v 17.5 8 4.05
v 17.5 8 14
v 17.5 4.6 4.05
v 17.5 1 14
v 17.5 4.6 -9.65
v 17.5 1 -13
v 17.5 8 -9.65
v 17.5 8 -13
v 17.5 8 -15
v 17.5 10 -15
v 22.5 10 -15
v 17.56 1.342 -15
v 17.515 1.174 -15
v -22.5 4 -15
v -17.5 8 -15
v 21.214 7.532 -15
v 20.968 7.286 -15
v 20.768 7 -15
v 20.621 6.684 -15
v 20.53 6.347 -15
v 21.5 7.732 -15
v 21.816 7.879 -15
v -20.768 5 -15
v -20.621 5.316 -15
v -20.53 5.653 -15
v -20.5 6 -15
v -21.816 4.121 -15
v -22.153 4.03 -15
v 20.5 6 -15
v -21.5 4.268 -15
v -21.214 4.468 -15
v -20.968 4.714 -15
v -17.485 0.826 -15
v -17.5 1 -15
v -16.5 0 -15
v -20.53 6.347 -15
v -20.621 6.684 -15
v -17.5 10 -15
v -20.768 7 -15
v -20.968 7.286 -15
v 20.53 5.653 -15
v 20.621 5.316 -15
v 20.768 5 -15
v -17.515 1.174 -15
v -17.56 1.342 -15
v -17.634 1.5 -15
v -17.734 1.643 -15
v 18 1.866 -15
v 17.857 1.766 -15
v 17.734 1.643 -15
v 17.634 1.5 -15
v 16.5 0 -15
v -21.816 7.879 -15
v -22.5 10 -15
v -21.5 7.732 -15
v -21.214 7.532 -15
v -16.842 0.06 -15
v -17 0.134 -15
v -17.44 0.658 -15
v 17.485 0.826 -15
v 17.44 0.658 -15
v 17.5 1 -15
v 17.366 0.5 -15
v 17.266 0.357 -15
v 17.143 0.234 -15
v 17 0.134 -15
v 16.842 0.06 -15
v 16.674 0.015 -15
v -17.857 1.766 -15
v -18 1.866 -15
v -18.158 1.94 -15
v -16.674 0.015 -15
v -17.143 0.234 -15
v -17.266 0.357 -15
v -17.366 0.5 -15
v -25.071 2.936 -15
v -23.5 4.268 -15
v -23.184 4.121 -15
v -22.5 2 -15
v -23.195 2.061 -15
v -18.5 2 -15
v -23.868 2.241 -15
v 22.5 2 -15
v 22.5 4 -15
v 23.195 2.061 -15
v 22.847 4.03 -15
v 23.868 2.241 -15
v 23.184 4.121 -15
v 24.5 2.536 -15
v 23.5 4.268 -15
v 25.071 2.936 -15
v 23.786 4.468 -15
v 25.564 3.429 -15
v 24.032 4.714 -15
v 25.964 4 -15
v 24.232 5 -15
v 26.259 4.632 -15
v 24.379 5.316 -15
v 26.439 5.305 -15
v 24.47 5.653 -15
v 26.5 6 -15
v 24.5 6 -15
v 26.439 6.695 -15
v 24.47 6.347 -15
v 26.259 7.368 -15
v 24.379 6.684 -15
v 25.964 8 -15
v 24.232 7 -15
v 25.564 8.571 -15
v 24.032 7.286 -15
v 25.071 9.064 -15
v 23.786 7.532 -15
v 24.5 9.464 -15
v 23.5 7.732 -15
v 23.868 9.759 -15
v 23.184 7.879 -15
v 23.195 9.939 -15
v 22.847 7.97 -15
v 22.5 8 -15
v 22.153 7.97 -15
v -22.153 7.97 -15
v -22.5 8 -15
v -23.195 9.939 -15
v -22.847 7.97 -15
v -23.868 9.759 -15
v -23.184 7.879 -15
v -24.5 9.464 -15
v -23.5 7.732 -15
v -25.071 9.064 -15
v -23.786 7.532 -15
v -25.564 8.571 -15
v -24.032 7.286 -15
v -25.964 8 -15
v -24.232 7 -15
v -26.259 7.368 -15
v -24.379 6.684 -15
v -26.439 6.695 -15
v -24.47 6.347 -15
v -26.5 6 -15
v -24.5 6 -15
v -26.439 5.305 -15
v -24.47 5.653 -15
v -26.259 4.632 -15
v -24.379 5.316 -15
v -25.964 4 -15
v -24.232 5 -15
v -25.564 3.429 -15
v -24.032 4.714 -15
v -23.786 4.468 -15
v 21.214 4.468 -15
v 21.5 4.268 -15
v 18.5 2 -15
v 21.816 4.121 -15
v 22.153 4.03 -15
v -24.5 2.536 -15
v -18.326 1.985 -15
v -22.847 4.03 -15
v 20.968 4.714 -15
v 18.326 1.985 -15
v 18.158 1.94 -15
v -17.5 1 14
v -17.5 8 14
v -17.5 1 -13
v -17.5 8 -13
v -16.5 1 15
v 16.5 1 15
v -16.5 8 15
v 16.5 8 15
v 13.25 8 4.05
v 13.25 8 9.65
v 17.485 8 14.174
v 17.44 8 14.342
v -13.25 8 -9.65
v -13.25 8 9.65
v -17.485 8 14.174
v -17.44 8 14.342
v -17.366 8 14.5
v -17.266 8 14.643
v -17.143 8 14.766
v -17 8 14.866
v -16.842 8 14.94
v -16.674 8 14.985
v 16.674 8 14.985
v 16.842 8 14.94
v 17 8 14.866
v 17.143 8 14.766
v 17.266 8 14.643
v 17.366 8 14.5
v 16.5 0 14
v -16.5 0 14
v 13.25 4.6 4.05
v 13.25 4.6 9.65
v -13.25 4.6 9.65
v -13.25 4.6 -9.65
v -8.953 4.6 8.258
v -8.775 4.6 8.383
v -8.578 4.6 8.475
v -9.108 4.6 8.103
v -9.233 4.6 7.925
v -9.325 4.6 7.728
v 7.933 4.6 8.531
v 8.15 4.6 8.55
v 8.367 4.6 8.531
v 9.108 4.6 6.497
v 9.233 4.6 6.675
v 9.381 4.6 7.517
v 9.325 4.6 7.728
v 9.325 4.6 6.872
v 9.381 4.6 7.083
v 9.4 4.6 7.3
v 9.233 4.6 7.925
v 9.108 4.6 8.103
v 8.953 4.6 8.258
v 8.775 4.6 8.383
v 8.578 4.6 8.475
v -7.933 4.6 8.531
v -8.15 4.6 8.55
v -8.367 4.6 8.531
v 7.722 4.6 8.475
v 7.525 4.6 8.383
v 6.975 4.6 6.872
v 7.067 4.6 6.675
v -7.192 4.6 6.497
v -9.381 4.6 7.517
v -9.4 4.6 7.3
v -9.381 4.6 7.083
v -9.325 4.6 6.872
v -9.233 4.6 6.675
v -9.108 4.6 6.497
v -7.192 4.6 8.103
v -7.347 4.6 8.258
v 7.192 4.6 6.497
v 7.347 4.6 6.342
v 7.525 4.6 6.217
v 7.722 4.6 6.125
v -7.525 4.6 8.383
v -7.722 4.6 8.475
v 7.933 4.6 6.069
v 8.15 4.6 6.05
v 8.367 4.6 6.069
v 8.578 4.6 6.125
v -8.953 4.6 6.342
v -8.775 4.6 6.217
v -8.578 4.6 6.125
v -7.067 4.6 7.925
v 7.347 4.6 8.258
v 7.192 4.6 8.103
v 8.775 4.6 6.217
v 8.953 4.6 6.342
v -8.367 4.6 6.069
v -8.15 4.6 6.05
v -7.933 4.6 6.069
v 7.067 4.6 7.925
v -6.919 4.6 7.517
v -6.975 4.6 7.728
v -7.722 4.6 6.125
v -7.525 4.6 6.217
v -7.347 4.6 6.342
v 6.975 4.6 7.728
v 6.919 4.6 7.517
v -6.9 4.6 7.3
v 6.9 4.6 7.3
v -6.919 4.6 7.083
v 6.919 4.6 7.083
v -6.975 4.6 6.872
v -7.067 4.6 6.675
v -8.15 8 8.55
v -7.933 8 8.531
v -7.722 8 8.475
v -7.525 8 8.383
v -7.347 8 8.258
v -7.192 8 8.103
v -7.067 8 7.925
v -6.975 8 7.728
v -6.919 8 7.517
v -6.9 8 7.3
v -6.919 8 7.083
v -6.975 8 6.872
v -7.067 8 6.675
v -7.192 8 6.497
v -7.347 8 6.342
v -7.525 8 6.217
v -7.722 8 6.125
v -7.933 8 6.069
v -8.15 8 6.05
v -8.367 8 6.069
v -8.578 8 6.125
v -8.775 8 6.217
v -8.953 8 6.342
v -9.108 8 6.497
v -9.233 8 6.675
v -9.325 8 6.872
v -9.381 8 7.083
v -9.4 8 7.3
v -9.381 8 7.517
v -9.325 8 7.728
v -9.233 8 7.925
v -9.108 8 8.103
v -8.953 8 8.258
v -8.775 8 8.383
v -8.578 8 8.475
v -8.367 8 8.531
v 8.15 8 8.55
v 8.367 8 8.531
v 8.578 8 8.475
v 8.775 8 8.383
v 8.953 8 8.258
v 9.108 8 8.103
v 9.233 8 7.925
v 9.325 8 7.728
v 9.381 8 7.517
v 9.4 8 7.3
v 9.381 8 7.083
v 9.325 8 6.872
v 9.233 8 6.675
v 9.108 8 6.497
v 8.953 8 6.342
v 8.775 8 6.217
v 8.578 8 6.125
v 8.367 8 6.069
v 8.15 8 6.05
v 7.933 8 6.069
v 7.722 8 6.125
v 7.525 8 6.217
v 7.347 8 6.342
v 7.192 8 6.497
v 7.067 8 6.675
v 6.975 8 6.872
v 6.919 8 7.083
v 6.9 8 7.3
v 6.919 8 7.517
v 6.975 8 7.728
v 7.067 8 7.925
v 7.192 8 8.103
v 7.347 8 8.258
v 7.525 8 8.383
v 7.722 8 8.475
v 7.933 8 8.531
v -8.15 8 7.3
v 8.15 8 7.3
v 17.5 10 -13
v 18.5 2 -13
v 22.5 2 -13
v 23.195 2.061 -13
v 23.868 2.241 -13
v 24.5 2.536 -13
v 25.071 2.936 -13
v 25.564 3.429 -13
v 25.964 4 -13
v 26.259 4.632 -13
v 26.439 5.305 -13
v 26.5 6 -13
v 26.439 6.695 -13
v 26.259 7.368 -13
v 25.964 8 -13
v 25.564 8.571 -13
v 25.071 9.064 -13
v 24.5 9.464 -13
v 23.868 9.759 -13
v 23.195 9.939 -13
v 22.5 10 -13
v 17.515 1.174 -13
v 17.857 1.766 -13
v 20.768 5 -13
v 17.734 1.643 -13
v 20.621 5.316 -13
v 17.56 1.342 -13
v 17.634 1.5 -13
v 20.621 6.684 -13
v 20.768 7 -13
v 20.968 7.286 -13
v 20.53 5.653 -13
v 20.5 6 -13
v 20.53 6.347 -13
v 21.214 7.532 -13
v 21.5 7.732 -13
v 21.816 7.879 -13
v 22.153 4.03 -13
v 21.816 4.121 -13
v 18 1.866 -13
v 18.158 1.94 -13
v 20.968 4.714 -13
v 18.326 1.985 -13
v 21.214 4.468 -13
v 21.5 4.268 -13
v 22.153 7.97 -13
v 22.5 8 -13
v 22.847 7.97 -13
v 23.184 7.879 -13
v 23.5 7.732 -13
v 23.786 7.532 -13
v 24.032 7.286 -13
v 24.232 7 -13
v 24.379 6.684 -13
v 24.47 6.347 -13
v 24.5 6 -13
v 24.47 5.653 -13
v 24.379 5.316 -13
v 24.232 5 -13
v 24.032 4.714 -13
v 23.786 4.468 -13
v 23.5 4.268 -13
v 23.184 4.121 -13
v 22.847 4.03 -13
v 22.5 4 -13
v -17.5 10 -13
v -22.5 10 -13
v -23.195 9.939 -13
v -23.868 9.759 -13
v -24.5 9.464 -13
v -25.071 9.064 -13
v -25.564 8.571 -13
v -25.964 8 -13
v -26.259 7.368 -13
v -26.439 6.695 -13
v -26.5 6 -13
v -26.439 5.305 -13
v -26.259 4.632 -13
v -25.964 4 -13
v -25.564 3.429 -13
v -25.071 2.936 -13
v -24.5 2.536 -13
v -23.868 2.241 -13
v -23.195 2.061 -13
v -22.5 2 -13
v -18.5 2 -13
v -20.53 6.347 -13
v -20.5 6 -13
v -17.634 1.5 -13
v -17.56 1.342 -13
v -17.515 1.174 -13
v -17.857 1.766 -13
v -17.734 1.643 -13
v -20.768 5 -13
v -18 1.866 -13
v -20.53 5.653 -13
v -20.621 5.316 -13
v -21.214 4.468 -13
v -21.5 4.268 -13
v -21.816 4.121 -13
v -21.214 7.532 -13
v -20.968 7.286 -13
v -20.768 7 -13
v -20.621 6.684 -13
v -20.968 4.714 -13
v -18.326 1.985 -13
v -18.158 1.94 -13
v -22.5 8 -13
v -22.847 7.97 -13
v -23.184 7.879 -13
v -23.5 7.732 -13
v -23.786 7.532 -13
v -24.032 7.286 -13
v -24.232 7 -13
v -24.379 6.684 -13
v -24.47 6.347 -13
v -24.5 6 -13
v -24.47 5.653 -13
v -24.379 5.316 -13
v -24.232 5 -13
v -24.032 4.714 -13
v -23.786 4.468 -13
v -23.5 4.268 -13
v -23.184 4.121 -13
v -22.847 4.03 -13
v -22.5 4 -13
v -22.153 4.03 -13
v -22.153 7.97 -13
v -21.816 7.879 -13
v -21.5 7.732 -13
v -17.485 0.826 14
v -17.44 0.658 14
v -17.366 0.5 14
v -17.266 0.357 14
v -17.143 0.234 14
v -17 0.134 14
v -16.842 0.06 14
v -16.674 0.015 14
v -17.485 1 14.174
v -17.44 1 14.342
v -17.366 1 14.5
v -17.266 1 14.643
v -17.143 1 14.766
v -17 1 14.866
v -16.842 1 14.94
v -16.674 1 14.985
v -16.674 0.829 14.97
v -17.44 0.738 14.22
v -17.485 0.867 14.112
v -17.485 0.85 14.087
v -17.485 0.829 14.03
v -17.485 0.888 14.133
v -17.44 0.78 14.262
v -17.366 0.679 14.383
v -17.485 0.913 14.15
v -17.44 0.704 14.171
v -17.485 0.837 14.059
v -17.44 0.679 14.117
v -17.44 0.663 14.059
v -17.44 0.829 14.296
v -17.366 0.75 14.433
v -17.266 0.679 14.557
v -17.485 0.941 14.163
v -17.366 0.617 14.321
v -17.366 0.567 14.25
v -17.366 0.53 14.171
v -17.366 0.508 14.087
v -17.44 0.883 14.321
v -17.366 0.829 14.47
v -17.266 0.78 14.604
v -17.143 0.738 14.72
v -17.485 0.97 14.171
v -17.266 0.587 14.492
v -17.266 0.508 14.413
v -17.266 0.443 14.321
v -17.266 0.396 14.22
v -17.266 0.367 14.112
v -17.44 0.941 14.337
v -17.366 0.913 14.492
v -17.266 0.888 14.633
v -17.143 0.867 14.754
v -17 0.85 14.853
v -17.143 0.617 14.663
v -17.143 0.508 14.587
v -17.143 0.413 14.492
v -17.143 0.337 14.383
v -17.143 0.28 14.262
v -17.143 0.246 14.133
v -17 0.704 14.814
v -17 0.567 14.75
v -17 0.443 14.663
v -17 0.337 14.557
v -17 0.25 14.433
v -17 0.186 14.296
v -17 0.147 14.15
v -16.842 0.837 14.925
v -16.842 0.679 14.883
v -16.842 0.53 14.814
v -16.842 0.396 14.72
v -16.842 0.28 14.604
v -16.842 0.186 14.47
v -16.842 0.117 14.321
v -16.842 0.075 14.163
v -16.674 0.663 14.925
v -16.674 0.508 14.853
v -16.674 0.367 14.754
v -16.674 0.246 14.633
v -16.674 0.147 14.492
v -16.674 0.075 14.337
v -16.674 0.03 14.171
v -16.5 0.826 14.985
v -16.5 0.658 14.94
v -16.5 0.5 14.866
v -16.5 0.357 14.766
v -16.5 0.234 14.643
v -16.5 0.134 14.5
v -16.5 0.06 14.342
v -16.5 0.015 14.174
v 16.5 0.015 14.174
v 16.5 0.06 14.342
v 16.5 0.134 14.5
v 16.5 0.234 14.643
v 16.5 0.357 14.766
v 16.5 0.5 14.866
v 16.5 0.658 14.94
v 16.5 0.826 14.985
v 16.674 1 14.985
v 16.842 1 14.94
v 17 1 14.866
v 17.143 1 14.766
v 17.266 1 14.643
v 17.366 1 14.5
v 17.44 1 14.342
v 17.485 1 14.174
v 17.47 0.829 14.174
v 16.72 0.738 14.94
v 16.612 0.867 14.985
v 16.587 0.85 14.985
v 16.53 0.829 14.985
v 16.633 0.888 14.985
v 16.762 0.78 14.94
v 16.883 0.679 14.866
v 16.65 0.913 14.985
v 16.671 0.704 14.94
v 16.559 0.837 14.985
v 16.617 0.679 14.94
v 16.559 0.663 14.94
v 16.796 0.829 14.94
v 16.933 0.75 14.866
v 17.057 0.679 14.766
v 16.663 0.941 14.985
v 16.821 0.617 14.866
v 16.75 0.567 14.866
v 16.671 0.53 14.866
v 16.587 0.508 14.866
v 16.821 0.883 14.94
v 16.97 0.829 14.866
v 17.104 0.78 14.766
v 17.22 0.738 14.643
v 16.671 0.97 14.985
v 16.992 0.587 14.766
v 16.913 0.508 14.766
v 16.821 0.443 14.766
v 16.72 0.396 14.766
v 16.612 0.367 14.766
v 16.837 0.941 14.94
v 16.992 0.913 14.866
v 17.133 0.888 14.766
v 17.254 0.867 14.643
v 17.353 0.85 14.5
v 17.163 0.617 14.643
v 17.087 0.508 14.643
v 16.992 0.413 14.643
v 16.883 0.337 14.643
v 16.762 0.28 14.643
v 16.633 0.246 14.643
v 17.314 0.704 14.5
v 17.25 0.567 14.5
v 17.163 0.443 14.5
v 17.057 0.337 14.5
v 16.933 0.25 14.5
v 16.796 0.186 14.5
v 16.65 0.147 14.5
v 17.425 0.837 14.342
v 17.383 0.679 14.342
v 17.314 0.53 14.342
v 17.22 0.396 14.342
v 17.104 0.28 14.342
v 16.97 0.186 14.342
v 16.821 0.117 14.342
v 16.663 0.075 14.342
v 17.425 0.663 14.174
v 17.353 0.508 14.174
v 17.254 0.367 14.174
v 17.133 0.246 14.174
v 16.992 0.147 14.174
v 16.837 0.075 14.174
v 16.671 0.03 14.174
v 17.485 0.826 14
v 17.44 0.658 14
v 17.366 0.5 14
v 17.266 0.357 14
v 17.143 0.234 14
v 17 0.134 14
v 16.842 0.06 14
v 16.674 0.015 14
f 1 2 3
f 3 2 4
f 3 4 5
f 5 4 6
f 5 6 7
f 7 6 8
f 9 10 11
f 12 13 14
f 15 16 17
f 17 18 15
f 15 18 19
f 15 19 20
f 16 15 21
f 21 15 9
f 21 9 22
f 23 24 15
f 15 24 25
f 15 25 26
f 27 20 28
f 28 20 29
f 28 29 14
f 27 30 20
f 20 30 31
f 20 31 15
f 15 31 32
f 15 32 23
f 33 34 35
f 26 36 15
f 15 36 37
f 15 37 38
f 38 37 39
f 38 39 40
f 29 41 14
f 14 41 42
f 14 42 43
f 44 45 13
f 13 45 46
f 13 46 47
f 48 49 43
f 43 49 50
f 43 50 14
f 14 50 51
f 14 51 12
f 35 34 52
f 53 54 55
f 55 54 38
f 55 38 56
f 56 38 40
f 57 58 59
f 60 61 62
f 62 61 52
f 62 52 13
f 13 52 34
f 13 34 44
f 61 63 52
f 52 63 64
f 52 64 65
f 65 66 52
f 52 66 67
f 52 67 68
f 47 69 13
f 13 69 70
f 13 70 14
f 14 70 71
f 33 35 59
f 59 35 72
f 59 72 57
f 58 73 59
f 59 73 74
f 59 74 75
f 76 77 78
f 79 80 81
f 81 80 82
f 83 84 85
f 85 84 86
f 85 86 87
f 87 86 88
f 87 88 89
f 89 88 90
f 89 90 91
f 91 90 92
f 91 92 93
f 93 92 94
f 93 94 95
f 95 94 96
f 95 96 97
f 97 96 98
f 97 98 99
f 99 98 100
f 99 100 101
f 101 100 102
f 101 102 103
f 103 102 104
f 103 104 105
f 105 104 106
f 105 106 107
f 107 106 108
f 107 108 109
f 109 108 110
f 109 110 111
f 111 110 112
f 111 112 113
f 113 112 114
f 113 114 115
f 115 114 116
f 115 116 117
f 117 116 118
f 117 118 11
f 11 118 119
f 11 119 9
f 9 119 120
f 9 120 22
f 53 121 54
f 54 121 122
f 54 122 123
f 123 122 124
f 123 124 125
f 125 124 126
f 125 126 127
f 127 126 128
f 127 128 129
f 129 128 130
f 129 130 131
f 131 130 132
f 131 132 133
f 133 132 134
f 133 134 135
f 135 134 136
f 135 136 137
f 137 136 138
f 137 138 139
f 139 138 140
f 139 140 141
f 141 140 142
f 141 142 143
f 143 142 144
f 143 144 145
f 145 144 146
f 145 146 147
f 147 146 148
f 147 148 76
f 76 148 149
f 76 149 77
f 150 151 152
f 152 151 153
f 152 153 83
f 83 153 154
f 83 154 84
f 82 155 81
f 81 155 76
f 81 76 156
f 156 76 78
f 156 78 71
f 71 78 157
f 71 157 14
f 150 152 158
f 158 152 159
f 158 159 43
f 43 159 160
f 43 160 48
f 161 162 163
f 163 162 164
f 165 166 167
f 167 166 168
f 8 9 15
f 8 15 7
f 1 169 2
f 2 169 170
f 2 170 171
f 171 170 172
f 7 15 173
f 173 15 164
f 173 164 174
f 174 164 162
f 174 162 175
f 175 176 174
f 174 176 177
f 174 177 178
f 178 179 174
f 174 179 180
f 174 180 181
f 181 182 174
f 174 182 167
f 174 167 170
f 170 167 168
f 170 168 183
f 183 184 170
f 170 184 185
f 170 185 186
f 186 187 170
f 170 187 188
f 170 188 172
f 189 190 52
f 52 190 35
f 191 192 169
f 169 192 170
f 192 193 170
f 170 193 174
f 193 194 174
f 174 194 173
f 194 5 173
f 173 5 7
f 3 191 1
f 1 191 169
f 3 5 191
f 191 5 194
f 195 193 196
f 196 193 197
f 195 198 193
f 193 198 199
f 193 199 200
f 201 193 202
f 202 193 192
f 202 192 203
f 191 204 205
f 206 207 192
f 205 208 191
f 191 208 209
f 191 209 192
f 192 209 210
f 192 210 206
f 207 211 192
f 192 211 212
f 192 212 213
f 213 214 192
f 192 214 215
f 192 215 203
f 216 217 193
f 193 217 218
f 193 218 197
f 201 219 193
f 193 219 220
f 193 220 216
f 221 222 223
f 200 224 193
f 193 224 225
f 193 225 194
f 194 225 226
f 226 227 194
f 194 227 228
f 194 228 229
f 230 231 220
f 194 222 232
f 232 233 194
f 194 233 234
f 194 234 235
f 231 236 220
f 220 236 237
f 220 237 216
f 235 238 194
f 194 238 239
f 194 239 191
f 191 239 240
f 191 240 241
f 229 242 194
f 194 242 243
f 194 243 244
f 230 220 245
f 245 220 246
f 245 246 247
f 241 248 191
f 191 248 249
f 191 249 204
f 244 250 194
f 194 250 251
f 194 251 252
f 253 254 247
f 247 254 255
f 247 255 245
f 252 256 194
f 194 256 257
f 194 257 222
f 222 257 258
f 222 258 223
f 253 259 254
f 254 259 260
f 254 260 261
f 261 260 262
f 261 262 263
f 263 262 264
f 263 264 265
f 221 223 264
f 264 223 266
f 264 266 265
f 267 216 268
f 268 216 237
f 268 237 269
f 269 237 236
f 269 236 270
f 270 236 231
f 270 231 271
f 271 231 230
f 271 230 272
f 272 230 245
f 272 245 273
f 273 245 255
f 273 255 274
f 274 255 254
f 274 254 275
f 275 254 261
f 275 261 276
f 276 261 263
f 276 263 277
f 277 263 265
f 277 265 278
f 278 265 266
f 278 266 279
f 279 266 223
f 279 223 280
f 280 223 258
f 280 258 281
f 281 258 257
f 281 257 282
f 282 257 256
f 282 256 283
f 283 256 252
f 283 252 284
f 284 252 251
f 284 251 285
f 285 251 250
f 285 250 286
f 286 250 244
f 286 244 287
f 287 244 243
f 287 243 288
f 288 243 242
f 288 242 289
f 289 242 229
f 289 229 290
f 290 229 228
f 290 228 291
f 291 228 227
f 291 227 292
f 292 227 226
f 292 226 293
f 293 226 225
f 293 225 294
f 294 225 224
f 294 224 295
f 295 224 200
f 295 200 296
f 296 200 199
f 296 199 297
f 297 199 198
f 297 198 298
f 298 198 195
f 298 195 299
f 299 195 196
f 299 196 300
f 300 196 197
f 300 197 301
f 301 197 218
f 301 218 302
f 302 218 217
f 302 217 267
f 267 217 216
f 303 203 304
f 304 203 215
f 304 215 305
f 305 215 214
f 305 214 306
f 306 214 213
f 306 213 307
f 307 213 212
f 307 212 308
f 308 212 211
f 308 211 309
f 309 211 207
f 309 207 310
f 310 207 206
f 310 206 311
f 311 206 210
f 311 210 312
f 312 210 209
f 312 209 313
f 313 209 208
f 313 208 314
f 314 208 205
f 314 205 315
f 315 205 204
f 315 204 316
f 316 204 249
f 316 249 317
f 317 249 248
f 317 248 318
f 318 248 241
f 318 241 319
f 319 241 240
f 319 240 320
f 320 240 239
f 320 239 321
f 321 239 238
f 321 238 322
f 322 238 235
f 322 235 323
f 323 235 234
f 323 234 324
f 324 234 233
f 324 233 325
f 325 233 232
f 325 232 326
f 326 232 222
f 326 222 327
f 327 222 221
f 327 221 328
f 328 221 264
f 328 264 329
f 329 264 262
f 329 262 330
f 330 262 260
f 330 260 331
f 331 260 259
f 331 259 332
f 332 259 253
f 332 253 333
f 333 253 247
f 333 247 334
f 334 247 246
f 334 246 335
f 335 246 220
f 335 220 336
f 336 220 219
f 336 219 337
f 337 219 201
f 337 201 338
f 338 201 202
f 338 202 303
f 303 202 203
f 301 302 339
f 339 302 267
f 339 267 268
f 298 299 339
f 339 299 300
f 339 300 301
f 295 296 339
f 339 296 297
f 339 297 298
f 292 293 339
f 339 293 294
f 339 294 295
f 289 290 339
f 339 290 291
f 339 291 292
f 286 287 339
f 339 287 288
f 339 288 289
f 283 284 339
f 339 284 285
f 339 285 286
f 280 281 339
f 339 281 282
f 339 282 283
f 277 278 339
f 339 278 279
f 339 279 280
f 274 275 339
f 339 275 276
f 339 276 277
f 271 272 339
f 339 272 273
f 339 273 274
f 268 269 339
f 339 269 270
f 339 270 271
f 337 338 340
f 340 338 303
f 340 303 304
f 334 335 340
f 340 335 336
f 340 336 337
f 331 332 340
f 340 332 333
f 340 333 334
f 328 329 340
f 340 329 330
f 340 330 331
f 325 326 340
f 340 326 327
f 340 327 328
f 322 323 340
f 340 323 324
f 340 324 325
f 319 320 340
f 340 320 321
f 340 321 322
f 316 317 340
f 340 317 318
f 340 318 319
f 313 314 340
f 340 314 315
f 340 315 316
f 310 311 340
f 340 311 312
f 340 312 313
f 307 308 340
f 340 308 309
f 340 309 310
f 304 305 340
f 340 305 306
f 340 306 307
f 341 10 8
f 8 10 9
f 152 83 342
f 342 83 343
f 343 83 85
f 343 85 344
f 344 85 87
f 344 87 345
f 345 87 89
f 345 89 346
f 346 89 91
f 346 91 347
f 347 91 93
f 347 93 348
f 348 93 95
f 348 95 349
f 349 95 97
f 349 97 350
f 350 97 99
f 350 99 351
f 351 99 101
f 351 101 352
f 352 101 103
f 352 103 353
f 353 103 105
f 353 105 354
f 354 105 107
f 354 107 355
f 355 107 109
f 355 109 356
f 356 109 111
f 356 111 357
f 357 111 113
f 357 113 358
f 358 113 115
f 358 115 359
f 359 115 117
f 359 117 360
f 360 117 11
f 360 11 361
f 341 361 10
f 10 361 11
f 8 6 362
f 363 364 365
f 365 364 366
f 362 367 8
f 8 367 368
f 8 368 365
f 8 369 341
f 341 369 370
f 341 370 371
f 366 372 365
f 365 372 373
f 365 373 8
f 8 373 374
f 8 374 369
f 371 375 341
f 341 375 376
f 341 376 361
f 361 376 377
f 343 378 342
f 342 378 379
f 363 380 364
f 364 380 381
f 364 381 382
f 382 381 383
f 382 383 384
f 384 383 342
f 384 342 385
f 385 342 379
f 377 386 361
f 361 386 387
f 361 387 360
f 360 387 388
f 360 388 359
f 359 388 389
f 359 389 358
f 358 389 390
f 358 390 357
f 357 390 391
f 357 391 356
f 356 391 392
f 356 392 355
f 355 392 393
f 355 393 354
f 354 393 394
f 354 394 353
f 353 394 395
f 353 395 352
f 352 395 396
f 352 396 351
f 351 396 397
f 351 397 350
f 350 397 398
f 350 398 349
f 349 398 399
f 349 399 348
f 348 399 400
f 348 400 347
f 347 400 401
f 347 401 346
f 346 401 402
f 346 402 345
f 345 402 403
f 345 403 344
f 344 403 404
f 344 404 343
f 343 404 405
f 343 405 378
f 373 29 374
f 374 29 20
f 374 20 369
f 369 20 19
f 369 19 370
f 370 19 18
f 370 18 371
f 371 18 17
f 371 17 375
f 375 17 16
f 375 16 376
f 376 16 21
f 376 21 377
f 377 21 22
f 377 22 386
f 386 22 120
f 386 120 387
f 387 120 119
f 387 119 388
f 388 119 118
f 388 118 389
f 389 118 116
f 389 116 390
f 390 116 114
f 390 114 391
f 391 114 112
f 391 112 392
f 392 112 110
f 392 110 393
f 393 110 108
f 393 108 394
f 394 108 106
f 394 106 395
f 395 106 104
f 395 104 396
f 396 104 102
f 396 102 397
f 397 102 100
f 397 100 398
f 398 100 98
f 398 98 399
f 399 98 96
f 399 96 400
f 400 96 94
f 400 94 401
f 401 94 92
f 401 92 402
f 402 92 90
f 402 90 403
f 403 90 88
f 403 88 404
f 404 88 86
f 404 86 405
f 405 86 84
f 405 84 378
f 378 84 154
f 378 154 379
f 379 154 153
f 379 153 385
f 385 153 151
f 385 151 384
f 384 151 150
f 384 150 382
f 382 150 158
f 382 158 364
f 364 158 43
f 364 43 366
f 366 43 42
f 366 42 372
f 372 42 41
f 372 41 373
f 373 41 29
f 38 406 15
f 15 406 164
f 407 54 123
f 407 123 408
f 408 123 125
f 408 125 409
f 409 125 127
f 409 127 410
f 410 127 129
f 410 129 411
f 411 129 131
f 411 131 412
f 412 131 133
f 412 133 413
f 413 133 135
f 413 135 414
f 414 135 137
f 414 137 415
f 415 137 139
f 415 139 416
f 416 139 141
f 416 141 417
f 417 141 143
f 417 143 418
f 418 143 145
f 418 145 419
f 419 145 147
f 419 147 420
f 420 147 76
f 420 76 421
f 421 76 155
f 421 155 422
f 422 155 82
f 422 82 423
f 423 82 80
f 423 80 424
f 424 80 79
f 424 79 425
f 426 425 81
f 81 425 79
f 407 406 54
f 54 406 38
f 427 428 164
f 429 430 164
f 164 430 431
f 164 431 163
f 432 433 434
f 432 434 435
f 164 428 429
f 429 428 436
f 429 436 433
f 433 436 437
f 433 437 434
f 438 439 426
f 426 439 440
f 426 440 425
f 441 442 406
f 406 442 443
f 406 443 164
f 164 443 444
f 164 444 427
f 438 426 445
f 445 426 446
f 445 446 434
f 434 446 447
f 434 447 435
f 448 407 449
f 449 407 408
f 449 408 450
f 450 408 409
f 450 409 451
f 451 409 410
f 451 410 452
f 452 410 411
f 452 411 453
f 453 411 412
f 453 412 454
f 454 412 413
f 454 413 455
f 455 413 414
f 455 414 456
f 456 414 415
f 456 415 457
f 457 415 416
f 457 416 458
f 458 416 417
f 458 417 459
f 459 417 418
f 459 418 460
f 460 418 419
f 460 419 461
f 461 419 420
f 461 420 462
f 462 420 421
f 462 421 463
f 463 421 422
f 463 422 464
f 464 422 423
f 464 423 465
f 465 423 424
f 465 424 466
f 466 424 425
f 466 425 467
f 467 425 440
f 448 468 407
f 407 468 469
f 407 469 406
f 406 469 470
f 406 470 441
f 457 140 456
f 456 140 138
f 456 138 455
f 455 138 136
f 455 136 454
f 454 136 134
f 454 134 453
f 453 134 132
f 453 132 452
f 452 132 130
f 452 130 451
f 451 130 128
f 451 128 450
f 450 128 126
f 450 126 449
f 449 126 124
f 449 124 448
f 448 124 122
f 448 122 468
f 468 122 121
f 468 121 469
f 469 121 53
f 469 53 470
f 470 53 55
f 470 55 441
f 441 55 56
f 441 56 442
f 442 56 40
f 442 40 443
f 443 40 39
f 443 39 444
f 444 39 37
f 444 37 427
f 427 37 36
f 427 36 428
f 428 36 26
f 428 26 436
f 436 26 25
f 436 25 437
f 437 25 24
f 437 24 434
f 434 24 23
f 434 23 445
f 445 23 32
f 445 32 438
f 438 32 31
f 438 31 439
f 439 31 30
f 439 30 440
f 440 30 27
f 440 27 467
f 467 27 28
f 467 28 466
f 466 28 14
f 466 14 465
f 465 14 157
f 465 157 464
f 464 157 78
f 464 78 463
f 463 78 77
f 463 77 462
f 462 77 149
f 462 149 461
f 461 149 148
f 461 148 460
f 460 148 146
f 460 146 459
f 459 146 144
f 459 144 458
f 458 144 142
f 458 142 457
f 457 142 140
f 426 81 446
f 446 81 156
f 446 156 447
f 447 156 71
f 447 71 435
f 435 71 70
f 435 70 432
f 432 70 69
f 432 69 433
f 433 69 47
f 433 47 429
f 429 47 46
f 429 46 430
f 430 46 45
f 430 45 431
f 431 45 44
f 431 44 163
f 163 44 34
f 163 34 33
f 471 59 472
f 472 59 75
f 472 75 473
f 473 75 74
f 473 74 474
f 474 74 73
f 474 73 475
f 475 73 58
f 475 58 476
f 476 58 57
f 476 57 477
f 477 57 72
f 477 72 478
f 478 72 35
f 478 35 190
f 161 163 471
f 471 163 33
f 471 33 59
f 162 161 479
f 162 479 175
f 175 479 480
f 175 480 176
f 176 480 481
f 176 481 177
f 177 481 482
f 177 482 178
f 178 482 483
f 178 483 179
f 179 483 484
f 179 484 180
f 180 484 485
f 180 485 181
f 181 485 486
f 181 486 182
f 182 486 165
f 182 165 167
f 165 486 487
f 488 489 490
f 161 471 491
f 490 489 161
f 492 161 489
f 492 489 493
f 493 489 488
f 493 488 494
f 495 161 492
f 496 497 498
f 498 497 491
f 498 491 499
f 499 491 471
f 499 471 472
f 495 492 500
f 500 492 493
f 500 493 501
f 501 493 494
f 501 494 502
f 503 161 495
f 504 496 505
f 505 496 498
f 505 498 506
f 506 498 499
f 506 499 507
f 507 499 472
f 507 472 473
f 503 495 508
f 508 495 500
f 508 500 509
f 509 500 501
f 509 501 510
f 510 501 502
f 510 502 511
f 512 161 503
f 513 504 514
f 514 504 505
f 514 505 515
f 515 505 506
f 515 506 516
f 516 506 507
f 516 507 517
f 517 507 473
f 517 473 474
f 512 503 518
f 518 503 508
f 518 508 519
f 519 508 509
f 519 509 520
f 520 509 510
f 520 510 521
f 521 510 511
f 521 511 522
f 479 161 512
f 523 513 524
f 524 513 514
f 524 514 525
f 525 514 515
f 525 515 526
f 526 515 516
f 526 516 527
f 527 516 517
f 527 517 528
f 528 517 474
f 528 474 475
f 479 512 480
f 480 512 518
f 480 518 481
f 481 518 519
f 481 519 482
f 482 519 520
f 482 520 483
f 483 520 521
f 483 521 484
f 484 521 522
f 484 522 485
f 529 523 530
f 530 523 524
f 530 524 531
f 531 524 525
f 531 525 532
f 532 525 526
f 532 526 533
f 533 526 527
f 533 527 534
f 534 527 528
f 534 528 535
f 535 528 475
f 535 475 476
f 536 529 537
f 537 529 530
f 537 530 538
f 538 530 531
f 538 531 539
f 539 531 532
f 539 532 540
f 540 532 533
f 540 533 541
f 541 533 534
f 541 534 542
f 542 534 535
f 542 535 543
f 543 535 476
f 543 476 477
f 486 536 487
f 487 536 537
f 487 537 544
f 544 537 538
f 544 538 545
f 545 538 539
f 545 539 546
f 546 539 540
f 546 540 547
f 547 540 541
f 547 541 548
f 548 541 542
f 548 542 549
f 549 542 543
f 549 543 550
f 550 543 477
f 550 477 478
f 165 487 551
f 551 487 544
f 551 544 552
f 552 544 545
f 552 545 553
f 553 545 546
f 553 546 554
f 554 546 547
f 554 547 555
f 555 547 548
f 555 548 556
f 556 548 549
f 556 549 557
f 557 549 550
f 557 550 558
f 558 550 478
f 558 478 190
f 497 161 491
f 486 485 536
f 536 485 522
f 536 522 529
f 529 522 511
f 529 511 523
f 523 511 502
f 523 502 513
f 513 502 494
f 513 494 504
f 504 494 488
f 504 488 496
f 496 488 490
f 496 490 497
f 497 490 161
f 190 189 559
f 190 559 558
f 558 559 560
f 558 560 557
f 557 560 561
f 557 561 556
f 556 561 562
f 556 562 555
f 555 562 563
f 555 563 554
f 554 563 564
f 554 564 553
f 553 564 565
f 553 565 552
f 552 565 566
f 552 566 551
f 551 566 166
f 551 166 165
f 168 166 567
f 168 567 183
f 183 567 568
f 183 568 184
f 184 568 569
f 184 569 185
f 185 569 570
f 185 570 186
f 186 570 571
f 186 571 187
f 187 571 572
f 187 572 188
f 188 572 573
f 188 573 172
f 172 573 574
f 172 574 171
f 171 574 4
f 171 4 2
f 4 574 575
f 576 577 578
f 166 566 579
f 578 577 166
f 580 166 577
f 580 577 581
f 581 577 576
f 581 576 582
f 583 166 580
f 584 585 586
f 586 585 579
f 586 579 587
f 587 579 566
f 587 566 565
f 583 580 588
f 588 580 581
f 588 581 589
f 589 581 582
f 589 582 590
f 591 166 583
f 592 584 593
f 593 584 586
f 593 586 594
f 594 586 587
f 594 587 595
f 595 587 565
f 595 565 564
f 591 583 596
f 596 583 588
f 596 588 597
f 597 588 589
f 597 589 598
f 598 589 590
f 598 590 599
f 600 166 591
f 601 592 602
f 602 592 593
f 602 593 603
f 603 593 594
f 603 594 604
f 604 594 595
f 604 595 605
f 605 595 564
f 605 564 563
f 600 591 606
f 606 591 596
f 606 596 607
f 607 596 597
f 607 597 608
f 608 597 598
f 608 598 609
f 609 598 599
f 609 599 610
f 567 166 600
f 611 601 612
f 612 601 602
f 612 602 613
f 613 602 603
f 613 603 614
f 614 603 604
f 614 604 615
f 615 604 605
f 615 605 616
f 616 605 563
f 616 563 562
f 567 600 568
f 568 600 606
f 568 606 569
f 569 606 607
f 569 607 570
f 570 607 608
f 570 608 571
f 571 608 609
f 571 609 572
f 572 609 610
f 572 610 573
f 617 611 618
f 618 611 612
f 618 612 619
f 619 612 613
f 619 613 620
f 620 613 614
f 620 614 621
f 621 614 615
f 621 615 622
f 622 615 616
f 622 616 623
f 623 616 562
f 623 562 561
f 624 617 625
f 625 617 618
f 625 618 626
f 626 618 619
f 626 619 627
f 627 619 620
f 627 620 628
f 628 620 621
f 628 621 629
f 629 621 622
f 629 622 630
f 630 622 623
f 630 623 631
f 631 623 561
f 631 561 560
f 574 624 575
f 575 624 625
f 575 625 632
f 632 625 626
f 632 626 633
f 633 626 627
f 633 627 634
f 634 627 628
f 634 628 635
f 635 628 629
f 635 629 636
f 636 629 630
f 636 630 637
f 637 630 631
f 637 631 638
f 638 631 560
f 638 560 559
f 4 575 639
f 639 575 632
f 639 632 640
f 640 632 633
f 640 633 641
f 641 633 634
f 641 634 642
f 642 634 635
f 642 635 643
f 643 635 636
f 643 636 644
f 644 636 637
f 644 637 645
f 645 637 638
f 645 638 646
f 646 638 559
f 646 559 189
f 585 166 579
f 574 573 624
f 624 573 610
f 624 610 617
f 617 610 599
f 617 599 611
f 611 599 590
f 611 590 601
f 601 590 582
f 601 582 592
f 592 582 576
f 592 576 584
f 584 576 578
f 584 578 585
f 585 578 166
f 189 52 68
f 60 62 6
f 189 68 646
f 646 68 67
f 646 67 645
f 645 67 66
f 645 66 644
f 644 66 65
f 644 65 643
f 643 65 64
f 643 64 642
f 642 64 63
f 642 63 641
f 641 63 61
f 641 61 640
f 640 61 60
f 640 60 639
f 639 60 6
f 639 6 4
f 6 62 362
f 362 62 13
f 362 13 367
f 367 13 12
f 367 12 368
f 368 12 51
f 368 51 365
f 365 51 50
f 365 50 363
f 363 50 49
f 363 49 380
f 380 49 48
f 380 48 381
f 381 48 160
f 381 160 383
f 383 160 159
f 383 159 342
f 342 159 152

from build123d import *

# Parameters (mm, degrees)
CROQUIS1_W              = 35
CROQUIS1_H              = 30
SALIENTE_EXTRUIR1_DEPTH = 8
CROQUIS2_R              = 1.25
CORTAR_EXTRUIR2_DEPTH   = 3.4
CROQUIS3_R              = 2
SALIENTE_EXTRUIR2_DEPTH = 2
REDONDEO1_R             = 1


with BuildPart() as part:
    # Croquis1 → Saliente-Extruir1 (new body)
    with BuildSketch(Plane(origin=(0, 0, 0), x_dir=(1, 0, 0), z_dir=(0, 1, 0))):
        Rectangle(CROQUIS1_W, CROQUIS1_H)
    extrude(amount=SALIENTE_EXTRUIR1_DEPTH)

    # Croquis2 → Cortar-Extruir2 (cut)
    with BuildSketch(Plane(origin=(0, 8, 0), x_dir=(1, 0, 0), z_dir=(0, 1, 0))):
        Polygon((13.25, 9.65), (17.5, 9.65), (17.5, -4.05), (13.25, -4.05), (13.25, -9.65), (-13.25, -9.65), (-13.25, 9.65), align=None)
        with Locations(Location((-8.15, -7.3, 0), (0, 0, 270))):
            Circle(CROQUIS2_R, mode=Mode.SUBTRACT)
        with Locations(Location((8.15, -7.3, 0), (0, 0, 270))):
            Circle(CROQUIS2_R, mode=Mode.SUBTRACT)
    extrude(amount=-CORTAR_EXTRUIR2_DEPTH, mode=Mode.SUBTRACT)

    # Croquis3 → Saliente-Extruir2 (add)
    # profile 1 of 2: a face of its own
    with BuildSketch(Plane(origin=(0, 0, -15), x_dir=(-1, 0, 0), z_dir=(0, 0, -1))):
        with BuildLine():
            Line((-17.5, 2), (-17.5, 10))
            Line((-17.5, 10), (-22.5, 10))
            ThreePointArc((-22.5, 10), (-26.5, 6), (-22.5, 2))
            Line((-22.5, 2), (-17.5, 2))
        make_face()
        with Locations((-22.5, 6)):
            Circle(CROQUIS3_R, mode=Mode.SUBTRACT)
    # profile 2 of 2: a face of its own
    with BuildSketch(Plane(origin=(0, 0, -15), x_dir=(-1, 0, 0), z_dir=(0, 0, -1))):
        with BuildLine():
            Line((17.5, 10), (22.5, 10))
            ThreePointArc((22.5, 10), (26.5, 6), (22.5, 2))
            Line((22.5, 2), (17.5, 2))
            Line((17.5, 2), (17.5, 10))
        make_face()
        with Locations(Location((22.5, 6, 0), (0, 0, 180))):
            Circle(CROQUIS3_R, mode=Mode.SUBTRACT)
    extrude(amount=-SALIENTE_EXTRUIR2_DEPTH)

    # Redondeo1
    redondeo1_edges = [part.edges().sort_by_distance(p)[0] for p in [
        (17.5, 2, -14),
        (17.5, 0, 0),
        (0, 0, 15),
        (-17.5, 0, 0),
        (-17.5, 2, -14),
        (-17.5, 4, 15),
        (17.5, 4, 15),
    ]]
    fillet(redondeo1_edges, radius=REDONDEO1_R - 0.0001)  # a hair under: the kernel refuses the full size


solid = part.part
